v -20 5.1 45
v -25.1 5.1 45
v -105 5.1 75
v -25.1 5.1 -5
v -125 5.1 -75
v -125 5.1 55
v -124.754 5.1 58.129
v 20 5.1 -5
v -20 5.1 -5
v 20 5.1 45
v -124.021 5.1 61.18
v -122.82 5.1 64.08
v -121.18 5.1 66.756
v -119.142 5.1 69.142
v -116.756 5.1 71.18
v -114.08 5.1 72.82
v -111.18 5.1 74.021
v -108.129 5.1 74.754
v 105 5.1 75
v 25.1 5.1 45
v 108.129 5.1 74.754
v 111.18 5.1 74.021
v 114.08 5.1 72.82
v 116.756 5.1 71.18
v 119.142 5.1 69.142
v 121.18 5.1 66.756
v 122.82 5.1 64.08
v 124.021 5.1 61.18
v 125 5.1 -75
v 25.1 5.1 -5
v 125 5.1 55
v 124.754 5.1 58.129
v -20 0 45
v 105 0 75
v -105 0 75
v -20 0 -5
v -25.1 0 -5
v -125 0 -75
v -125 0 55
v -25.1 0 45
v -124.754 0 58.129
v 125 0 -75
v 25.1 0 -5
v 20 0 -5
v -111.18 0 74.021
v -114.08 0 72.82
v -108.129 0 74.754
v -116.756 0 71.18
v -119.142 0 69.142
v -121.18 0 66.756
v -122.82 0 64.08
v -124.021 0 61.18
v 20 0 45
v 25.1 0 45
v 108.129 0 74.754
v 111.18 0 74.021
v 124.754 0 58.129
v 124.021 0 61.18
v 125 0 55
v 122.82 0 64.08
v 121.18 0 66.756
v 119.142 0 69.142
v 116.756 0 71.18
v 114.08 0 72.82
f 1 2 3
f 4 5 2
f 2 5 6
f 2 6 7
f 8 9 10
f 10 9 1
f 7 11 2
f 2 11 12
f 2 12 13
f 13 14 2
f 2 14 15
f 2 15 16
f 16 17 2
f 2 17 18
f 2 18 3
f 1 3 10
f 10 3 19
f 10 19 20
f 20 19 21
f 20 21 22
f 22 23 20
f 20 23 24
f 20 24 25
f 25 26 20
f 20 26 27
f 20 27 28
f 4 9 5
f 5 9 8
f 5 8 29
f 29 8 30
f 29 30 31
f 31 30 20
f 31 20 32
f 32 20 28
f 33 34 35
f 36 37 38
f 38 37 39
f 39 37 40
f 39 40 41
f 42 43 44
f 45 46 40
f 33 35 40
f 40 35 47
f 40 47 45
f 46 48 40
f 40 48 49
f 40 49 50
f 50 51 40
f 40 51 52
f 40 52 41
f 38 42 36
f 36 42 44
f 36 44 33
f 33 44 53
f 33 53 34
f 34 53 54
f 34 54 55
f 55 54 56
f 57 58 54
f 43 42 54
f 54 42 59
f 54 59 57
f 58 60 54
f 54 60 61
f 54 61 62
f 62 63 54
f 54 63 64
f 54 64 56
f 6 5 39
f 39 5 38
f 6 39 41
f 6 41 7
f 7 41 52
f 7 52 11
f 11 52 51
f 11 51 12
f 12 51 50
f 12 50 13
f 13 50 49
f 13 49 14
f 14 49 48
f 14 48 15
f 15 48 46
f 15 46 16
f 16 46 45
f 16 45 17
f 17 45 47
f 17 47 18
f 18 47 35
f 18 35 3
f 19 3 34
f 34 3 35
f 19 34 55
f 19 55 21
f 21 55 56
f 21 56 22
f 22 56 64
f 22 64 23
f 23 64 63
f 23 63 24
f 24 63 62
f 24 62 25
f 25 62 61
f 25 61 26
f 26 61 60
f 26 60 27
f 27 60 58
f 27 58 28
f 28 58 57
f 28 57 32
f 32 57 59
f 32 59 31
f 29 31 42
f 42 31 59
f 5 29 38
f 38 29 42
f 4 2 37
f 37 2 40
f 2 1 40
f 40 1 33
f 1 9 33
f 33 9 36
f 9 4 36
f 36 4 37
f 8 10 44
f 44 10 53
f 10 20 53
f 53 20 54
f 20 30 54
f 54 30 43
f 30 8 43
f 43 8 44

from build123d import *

# Parameters (mm, degrees)
SKETCH1_W           = 5.1
SKETCH1_H           = 50
BOSS_EXTRUDE1_DEPTH = 5.1


with BuildPart() as part:
    # Sketch1 → Boss-Extrude1 (new body)
    with BuildSketch(Plane(origin=(0, 0, 0), x_dir=(1, 0, 0), z_dir=(0, 1, 0))):
        with BuildLine():
            Line((105, -75), (-105, -75))
            ThreePointArc((-105, -75), (-119.142135624, -69.142135624), (-125, -55))
            Line((-125, -55), (-125, 75))
            Line((-125, 75), (125, 75))
            Line((125, 75), (125, -55))
            ThreePointArc((125, -55), (119.142135624, -69.142135624), (105, -75))
        make_face()
        with Locations((-22.55, -20)):
            Rectangle(SKETCH1_W, SKETCH1_H, mode=Mode.SUBTRACT)
        with Locations((22.55, -20)):
            Rectangle(SKETCH1_W, SKETCH1_H, mode=Mode.SUBTRACT)
    extrude(amount=BOSS_EXTRUDE1_DEPTH)


solid = part.part
